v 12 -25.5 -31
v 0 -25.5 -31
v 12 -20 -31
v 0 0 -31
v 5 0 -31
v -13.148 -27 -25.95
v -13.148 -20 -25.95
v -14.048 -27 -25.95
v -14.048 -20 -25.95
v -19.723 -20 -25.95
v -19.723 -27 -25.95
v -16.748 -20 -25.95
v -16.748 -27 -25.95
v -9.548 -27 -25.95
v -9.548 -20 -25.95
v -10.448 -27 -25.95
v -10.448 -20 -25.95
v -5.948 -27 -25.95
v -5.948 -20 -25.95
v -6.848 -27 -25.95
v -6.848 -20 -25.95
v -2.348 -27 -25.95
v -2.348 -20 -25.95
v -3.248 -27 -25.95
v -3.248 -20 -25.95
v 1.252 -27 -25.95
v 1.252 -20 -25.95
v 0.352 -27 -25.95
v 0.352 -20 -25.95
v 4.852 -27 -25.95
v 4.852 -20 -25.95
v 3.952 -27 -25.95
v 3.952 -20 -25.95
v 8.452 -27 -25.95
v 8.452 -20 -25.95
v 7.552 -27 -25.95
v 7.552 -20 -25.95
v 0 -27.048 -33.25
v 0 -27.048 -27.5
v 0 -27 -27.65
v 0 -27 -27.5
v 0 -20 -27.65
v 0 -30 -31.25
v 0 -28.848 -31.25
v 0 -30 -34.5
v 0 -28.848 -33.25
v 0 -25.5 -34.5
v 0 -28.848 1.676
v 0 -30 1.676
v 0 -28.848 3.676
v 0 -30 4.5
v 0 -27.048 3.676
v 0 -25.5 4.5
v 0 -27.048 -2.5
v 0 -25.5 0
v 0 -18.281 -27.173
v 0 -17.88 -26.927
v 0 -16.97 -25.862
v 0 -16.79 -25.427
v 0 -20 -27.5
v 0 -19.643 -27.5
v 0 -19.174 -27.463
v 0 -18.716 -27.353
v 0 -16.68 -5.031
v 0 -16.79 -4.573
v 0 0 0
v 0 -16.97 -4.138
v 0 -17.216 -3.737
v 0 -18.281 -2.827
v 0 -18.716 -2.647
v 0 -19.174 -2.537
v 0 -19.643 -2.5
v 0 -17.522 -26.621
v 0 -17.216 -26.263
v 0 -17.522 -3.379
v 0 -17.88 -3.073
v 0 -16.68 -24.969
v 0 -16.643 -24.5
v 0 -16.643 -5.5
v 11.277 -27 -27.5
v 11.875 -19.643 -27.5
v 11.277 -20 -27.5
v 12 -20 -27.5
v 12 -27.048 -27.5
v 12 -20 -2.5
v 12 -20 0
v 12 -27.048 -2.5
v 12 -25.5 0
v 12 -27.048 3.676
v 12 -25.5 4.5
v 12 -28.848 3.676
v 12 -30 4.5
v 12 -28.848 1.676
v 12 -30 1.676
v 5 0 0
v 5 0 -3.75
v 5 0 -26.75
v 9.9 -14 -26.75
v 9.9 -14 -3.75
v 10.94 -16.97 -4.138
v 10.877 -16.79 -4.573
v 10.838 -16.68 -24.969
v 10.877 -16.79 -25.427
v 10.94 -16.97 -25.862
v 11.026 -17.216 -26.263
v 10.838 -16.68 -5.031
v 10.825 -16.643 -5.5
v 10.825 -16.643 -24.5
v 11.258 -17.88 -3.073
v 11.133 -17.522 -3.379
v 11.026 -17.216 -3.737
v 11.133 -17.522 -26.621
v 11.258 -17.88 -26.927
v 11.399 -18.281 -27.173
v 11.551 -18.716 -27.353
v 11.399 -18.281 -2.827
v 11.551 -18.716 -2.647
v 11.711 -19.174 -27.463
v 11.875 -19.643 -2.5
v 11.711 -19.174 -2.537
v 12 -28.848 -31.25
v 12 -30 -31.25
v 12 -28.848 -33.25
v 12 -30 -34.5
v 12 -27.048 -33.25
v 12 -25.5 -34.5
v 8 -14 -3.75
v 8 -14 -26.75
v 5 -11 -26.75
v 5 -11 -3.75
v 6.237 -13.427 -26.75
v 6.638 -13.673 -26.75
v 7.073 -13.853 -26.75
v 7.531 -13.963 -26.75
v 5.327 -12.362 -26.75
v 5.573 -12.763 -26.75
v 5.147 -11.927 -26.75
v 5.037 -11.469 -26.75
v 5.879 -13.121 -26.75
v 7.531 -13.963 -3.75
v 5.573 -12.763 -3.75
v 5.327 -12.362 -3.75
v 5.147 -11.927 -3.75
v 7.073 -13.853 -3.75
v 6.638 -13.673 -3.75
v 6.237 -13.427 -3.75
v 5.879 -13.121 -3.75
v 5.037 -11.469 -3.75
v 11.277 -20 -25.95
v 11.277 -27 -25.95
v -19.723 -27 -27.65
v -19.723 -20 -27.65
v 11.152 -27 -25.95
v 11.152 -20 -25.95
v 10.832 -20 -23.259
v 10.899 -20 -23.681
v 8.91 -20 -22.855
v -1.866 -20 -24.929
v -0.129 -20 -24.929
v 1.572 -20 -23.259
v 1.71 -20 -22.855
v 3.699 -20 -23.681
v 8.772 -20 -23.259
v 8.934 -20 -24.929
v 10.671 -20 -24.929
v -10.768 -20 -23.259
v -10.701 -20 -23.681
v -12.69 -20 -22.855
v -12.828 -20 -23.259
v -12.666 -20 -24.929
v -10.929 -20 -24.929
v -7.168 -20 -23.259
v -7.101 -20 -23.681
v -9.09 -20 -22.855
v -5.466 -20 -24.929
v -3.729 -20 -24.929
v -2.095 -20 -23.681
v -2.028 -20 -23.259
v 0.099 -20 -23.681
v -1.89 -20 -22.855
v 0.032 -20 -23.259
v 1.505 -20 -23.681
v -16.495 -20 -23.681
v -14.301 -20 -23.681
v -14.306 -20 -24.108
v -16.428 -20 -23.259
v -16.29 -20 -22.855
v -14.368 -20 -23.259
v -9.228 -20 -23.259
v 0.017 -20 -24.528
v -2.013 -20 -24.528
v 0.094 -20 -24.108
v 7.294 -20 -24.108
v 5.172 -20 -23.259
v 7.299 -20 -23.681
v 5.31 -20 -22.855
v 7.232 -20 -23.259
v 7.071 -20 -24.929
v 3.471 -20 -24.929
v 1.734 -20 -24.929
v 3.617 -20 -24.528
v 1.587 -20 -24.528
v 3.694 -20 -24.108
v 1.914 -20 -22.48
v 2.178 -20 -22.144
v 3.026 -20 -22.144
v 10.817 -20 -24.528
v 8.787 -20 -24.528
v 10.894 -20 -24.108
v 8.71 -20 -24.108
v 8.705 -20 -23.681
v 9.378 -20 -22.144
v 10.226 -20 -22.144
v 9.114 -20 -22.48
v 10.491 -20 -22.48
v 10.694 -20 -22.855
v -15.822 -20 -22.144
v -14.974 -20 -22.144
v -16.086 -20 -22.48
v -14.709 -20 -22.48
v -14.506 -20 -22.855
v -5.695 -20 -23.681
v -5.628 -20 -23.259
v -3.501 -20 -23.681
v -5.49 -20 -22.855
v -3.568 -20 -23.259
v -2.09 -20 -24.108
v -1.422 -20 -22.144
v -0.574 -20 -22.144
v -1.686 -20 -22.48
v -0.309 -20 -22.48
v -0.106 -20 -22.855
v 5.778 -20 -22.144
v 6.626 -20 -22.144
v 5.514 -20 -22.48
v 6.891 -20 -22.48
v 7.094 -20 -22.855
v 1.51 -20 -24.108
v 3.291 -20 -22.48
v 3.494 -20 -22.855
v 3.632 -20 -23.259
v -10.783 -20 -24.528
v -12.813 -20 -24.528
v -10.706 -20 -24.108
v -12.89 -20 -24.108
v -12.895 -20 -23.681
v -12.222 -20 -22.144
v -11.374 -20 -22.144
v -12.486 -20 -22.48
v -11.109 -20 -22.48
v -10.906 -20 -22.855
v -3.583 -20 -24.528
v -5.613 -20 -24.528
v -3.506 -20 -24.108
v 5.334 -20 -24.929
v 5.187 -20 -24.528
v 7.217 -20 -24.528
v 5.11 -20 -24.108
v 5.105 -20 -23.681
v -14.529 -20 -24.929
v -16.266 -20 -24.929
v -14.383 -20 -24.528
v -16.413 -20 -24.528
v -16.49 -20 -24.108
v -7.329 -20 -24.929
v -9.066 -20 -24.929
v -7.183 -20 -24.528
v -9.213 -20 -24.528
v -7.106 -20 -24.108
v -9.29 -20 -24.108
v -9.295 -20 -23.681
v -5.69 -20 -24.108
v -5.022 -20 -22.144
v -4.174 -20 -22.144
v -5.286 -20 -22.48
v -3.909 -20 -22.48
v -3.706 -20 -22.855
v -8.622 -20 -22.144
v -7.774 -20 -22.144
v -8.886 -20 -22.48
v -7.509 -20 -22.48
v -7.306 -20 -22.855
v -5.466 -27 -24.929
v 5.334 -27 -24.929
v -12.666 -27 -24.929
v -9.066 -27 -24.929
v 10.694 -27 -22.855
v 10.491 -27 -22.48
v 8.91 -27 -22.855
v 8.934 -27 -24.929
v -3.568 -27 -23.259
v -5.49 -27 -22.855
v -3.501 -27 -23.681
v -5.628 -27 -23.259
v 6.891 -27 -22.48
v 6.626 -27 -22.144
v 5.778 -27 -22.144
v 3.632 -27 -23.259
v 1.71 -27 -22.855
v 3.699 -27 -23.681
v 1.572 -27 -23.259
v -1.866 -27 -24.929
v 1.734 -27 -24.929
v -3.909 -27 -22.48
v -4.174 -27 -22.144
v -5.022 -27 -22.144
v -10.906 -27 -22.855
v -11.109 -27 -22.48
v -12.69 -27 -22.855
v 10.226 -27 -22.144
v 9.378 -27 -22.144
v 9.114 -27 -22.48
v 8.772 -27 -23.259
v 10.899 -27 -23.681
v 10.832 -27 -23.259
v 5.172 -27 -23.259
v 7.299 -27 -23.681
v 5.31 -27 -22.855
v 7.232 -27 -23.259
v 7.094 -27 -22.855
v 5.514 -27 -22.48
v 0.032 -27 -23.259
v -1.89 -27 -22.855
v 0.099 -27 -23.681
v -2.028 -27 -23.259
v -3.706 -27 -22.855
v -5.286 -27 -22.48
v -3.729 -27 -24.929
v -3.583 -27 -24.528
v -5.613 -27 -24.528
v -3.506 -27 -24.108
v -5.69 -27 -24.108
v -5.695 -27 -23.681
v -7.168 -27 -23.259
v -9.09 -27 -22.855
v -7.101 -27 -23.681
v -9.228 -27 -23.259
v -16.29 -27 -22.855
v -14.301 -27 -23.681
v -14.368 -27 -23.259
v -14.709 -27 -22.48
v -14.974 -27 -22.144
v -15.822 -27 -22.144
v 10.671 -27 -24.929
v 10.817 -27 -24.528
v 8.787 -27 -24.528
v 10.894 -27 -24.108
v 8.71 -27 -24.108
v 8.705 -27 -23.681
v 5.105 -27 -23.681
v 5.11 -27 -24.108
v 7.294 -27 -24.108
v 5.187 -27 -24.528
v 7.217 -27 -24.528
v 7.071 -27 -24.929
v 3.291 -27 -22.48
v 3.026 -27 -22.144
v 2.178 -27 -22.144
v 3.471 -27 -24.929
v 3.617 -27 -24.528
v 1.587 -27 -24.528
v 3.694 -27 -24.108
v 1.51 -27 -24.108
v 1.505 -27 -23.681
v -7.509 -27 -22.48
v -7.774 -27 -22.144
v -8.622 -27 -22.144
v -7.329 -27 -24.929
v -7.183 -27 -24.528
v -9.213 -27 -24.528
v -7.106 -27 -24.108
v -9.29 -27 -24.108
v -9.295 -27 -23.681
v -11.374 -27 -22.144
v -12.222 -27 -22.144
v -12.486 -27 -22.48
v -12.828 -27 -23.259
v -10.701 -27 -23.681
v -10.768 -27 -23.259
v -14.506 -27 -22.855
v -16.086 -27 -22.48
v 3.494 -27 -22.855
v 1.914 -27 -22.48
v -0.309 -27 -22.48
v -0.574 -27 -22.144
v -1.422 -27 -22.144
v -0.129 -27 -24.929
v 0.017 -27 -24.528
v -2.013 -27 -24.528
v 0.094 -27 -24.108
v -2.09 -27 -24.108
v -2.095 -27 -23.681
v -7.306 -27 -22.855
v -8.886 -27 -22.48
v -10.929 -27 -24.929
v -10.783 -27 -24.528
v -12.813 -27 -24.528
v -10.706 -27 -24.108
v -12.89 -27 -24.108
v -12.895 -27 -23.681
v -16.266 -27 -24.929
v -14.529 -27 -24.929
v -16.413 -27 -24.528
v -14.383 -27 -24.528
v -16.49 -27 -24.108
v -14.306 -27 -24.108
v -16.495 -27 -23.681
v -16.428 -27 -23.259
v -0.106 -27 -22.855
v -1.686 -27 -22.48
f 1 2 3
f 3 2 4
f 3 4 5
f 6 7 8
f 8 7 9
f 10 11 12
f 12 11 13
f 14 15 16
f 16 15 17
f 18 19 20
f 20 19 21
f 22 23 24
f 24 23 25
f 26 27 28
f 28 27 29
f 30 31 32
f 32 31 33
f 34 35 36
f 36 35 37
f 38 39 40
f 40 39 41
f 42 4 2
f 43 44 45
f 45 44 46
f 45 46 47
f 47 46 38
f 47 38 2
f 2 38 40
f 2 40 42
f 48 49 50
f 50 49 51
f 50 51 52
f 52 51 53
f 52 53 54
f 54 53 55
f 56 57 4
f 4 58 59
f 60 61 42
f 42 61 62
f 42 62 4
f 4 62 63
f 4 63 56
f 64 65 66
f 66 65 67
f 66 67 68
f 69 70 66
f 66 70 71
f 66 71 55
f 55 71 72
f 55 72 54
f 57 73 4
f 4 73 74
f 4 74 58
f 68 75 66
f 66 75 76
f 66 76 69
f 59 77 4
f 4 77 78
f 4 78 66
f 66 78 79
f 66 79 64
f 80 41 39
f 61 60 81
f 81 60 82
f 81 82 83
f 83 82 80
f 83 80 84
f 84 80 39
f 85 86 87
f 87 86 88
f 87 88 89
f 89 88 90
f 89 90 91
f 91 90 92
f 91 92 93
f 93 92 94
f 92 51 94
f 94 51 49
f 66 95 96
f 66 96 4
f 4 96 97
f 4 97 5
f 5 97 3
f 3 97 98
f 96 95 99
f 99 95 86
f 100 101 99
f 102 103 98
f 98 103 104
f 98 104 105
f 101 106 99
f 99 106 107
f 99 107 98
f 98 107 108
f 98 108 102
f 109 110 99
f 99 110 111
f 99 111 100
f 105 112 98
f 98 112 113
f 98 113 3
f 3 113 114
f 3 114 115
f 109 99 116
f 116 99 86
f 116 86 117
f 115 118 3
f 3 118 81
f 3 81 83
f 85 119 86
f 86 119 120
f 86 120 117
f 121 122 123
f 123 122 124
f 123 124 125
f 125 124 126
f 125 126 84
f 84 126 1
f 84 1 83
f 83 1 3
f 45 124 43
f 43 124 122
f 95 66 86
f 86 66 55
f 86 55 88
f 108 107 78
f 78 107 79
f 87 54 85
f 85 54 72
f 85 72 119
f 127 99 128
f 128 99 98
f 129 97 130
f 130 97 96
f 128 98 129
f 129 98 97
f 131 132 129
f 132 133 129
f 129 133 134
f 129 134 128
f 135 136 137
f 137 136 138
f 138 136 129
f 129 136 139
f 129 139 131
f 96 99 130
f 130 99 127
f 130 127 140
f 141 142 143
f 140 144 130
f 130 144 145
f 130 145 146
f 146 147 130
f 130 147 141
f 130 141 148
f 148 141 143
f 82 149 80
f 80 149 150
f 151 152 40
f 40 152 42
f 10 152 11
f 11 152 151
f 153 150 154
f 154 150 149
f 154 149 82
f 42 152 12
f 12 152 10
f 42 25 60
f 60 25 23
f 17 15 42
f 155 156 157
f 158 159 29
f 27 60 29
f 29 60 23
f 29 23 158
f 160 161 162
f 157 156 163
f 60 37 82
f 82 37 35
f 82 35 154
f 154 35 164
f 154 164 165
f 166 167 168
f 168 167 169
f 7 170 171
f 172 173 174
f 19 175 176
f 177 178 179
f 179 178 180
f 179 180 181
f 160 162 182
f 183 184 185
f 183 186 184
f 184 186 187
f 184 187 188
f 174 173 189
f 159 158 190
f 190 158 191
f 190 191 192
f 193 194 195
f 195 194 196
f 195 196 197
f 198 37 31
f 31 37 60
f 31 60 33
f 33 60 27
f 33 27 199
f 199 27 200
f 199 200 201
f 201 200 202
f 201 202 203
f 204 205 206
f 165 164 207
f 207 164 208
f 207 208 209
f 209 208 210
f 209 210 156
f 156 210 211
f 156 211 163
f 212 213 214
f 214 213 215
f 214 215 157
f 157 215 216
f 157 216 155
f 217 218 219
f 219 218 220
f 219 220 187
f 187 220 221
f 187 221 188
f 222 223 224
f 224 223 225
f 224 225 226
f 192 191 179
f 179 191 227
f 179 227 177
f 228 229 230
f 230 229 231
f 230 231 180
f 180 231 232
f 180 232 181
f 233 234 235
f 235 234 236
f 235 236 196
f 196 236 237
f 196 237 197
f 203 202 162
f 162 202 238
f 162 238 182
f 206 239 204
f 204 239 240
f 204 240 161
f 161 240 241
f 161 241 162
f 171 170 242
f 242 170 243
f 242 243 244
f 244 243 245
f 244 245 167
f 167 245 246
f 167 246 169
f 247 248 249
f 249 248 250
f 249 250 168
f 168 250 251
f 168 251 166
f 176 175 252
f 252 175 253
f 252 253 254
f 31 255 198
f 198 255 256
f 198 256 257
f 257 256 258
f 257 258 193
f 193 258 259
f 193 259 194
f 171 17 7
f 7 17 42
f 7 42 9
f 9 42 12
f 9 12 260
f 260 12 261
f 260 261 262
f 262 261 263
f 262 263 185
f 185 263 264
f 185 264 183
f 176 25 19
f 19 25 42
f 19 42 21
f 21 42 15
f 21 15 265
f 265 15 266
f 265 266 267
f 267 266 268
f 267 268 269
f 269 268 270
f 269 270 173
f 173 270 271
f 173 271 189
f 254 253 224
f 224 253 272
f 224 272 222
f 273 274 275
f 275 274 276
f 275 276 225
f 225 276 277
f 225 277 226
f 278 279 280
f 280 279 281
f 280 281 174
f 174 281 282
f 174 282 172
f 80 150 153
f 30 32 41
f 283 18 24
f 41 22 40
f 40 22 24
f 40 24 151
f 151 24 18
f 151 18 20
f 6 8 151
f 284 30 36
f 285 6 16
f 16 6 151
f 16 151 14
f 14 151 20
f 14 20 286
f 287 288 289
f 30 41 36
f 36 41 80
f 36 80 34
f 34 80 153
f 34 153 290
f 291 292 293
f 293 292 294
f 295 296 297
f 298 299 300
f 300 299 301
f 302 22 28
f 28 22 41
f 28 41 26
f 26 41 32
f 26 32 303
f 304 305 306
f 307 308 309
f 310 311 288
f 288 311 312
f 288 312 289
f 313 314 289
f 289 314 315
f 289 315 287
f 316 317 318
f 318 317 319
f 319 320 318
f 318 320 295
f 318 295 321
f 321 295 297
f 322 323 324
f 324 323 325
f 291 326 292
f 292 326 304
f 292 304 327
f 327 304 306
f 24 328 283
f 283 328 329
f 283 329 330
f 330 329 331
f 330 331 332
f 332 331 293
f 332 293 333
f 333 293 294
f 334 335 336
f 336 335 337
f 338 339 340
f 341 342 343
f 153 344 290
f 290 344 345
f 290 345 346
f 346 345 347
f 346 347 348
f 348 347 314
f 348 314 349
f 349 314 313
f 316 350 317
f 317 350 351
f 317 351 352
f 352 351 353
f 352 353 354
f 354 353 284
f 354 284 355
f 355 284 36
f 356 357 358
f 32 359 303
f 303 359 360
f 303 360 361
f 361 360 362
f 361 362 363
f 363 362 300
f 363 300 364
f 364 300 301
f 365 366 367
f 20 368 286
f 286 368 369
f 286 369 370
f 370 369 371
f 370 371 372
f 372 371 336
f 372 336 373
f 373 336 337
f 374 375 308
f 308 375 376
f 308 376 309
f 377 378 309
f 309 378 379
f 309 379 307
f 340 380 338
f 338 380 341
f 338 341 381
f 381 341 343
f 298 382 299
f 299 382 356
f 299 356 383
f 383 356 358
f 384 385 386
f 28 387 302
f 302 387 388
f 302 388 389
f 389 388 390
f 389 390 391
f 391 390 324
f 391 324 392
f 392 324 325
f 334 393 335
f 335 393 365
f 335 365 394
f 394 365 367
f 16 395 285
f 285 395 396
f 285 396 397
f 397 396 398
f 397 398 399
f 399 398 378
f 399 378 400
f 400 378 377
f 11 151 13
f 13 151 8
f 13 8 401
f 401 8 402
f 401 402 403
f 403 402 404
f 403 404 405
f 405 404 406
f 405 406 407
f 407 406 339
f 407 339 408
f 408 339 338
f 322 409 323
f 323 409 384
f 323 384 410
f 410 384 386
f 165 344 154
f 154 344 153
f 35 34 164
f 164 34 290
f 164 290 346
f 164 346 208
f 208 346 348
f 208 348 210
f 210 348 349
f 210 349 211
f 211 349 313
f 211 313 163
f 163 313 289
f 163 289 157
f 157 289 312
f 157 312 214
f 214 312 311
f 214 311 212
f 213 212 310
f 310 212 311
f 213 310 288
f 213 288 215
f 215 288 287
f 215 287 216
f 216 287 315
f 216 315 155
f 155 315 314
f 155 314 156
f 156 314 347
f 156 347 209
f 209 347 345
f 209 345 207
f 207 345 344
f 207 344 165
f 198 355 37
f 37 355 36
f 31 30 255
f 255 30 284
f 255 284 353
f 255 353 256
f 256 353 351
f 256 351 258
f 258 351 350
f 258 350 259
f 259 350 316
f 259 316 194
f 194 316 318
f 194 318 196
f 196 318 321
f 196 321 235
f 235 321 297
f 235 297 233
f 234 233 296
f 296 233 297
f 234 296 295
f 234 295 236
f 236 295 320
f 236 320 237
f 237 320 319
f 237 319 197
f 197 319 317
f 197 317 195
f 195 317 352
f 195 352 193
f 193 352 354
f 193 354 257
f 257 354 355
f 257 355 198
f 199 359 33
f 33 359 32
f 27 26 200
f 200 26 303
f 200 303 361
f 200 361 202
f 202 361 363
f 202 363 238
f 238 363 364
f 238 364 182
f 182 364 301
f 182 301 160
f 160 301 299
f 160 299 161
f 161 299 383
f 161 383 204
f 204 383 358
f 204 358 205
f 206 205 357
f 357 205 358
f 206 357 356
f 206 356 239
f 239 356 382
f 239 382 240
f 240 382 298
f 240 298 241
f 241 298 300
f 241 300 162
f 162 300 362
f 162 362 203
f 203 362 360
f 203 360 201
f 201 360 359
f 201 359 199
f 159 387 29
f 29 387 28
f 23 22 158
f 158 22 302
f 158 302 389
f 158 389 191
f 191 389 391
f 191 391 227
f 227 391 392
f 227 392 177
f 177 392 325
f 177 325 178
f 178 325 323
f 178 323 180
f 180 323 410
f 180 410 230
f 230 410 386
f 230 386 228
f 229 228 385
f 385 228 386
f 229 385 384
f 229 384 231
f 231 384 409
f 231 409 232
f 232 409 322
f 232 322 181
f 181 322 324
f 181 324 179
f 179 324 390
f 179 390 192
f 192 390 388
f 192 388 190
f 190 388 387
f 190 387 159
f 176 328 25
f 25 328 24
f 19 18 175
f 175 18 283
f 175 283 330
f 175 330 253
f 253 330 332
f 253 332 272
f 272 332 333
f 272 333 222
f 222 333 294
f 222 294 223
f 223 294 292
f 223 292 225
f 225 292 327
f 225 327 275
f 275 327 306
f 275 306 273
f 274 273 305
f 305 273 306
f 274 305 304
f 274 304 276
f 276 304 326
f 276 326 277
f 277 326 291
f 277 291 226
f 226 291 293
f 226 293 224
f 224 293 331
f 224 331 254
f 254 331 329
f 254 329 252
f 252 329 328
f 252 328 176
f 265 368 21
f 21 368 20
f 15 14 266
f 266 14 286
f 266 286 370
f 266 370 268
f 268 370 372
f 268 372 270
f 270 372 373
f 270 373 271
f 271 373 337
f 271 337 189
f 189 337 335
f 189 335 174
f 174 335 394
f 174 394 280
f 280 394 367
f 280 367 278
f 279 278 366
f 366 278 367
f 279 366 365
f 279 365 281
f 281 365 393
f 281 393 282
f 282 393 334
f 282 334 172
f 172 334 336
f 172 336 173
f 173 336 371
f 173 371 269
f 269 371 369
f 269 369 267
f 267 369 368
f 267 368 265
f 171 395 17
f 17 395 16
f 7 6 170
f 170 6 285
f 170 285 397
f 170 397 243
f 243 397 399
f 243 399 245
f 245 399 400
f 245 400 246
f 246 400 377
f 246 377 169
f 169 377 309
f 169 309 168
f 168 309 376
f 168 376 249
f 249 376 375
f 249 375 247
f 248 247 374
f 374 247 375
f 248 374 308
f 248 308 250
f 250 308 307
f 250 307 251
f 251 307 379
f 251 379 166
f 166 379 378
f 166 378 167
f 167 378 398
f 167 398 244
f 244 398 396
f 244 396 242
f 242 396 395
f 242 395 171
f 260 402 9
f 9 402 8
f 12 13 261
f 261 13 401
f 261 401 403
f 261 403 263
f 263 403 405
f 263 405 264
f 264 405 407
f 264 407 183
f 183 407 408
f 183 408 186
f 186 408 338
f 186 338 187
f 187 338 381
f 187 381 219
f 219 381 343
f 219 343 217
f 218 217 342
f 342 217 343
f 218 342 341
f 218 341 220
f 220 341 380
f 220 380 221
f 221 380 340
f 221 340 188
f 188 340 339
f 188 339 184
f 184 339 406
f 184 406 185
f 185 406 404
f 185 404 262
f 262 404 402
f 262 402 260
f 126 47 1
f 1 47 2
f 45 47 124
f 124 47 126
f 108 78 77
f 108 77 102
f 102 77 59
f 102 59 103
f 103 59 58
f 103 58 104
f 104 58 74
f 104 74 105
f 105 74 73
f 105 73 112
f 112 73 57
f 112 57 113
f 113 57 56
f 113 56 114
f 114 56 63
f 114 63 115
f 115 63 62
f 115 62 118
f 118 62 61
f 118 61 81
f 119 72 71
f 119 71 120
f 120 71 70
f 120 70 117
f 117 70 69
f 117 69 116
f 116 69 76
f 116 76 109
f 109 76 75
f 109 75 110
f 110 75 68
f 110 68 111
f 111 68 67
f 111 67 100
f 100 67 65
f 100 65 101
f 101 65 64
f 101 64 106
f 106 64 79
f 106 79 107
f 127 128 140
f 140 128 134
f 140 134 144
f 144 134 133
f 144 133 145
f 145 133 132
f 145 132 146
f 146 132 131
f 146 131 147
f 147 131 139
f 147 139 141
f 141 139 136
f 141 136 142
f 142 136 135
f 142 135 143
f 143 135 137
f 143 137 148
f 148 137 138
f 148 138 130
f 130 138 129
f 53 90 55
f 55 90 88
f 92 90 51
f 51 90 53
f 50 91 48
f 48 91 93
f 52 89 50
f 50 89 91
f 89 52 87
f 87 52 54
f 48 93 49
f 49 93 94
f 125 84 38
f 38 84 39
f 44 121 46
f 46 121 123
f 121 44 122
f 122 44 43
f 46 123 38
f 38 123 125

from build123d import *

# Parameters (mm, degrees)
BOSS_EXTRUDE1_DEPTH = 31
SKETCH4_W           = 25
SKETCH4_H           = 15
CUT_EXTRUDE2_DEPTH  = 25
CUT_EXTRUDE4_DEPTH  = 11.5
SKETCH7_W           = 31
SKETCH7_H           = 1.7
BOSS_EXTRUDE3_DEPTH = 7
BOSS_EXTRUDE4_DEPTH = 7
LPATTERN1_COUNT     = 8
LPATTERN1_PITCH     = 3.6
SKETCH11_W          = 12
SKETCH11_H          = 4.5
BOSS_EXTRUDE5_DEPTH = 3.5
FILLET5_R           = 3
SKETCH12_W          = 12
SKETCH12_H          = 4.5
BOSS_EXTRUDE6_DEPTH = 4.5
CUT_EXTRUDE5_DEPTH  = 12


with BuildPart() as part:
    # Sketch1 → Boss-Extrude1 (new body)
    with BuildSketch(Plane.XY):
        Polygon((0, 0), (0, -30), (12, -30), (12, -20), (5, 0), align=None)
    extrude(amount=-BOSS_EXTRUDE1_DEPTH)

    # Sketch4 → Cut-Extrude2 (cut)
    with BuildSketch(Plane.ZY):
        with Locations((-15, -24.143402944)):
            Rectangle(SKETCH4_W, SKETCH4_H)
    extrude(amount=-CUT_EXTRUDE2_DEPTH, mode=Mode.SUBTRACT)

    # Sketch6 → Cut-Extrude4 (cut, symmetric)
    with BuildSketch(Plane.XY.offset(-15.25)):
        Polygon((5, 0), (5, -14), (9.9, -14), align=None)
    extrude(amount=CUT_EXTRUDE4_DEPTH, both=True, mode=Mode.SUBTRACT)

    # Sketch7 → Boss-Extrude3 (add)
    with BuildSketch(Plane(origin=(0, -27, 0), x_dir=(1, 0, 0), z_dir=(0, 1, 0))):
        with Locations((-4.2231607, 26.8)):
            Rectangle(SKETCH7_W, SKETCH7_H)
    extrude(amount=BOSS_EXTRUDE3_DEPTH)

    # Sketch10 → Boss-Extrude4 (add)
    with BuildSketch(Plane(origin=(0, -27, 0), x_dir=(1, 0, 0), z_dir=(0, 1, 0))):
        with BuildLine():
            Line((10.226247744, 22.144145979), (9.378053282, 22.144145979))
            ThreePointArc((9.378053282, 22.144145979), (8.729742796, 23.468564149), (8.93378471, 24.928960283))
            ThreePointArc((8.93378471, 24.928960283), (8.707970922, 25.446557347), (8.452150513, 25.95))
            Line((8.452150513, 25.95), (11.152150513, 25.95))
            ThreePointArc((11.152150513, 25.95), (10.896330104, 25.446557347), (10.670516315, 24.928960283))
            ThreePointArc((10.670516315, 24.928960283), (10.874558229, 23.468564149), (10.226247744, 22.144145979))
        make_face()
    boss_extrude4 = extrude(amount=BOSS_EXTRUDE4_DEPTH)

    # LPattern1: Boss-Extrude4 ×8
    with Locations(*[(-i * LPATTERN1_PITCH, 0, 0) for i in range(1, LPATTERN1_COUNT)]):
        add(boss_extrude4)

    # Sketch11 → Boss-Extrude5 (add)
    with BuildSketch(Plane(origin=(0, 0, -31), x_dir=(-1, 0, 0), z_dir=(0, 0, -1))):
        with Locations((-6, -27.75)):
            Rectangle(SKETCH11_W, SKETCH11_H)
    extrude(amount=BOSS_EXTRUDE5_DEPTH)

    # Fillet5
    fillet5_edges = [part.edges().sort_by_distance(p)[0] for p in [
        (5.412595515, -16.643402944, -27.5),
        (5.412595515, -16.643402944, -2.5),
        (5, -14, -15.25),
    ]]
    fillet(fillet5_edges, radius=FILLET5_R)

    # Sketch12 → Boss-Extrude6 (add)
    with BuildSketch(Plane.XY):
        with Locations((6, -27.75)):
            Rectangle(SKETCH12_W, SKETCH12_H)
    extrude(amount=BOSS_EXTRUDE6_DEPTH)

    # Sketch13 → Cut-Extrude5 (cut)
    with BuildSketch(Plane.ZY):
        Polygon((-33.25, -27.047861031), (-26.75, -27.047861031), (-26.75, -32.047861031), (-31.25, -32.047861031), (-31.25, -28.847861031), (-33.25, -28.847861031), align=None)
        Polygon((1.676178687, -28.847861031), (3.676178687, -28.847861031), (3.676178687, -27.047861031), (-2.823821313, -27.047861031), (-2.823821313, -32.047861031), (1.676178687, -32.047861031), align=None)
    extrude(amount=-CUT_EXTRUDE5_DEPTH, mode=Mode.SUBTRACT)


solid = part.part
